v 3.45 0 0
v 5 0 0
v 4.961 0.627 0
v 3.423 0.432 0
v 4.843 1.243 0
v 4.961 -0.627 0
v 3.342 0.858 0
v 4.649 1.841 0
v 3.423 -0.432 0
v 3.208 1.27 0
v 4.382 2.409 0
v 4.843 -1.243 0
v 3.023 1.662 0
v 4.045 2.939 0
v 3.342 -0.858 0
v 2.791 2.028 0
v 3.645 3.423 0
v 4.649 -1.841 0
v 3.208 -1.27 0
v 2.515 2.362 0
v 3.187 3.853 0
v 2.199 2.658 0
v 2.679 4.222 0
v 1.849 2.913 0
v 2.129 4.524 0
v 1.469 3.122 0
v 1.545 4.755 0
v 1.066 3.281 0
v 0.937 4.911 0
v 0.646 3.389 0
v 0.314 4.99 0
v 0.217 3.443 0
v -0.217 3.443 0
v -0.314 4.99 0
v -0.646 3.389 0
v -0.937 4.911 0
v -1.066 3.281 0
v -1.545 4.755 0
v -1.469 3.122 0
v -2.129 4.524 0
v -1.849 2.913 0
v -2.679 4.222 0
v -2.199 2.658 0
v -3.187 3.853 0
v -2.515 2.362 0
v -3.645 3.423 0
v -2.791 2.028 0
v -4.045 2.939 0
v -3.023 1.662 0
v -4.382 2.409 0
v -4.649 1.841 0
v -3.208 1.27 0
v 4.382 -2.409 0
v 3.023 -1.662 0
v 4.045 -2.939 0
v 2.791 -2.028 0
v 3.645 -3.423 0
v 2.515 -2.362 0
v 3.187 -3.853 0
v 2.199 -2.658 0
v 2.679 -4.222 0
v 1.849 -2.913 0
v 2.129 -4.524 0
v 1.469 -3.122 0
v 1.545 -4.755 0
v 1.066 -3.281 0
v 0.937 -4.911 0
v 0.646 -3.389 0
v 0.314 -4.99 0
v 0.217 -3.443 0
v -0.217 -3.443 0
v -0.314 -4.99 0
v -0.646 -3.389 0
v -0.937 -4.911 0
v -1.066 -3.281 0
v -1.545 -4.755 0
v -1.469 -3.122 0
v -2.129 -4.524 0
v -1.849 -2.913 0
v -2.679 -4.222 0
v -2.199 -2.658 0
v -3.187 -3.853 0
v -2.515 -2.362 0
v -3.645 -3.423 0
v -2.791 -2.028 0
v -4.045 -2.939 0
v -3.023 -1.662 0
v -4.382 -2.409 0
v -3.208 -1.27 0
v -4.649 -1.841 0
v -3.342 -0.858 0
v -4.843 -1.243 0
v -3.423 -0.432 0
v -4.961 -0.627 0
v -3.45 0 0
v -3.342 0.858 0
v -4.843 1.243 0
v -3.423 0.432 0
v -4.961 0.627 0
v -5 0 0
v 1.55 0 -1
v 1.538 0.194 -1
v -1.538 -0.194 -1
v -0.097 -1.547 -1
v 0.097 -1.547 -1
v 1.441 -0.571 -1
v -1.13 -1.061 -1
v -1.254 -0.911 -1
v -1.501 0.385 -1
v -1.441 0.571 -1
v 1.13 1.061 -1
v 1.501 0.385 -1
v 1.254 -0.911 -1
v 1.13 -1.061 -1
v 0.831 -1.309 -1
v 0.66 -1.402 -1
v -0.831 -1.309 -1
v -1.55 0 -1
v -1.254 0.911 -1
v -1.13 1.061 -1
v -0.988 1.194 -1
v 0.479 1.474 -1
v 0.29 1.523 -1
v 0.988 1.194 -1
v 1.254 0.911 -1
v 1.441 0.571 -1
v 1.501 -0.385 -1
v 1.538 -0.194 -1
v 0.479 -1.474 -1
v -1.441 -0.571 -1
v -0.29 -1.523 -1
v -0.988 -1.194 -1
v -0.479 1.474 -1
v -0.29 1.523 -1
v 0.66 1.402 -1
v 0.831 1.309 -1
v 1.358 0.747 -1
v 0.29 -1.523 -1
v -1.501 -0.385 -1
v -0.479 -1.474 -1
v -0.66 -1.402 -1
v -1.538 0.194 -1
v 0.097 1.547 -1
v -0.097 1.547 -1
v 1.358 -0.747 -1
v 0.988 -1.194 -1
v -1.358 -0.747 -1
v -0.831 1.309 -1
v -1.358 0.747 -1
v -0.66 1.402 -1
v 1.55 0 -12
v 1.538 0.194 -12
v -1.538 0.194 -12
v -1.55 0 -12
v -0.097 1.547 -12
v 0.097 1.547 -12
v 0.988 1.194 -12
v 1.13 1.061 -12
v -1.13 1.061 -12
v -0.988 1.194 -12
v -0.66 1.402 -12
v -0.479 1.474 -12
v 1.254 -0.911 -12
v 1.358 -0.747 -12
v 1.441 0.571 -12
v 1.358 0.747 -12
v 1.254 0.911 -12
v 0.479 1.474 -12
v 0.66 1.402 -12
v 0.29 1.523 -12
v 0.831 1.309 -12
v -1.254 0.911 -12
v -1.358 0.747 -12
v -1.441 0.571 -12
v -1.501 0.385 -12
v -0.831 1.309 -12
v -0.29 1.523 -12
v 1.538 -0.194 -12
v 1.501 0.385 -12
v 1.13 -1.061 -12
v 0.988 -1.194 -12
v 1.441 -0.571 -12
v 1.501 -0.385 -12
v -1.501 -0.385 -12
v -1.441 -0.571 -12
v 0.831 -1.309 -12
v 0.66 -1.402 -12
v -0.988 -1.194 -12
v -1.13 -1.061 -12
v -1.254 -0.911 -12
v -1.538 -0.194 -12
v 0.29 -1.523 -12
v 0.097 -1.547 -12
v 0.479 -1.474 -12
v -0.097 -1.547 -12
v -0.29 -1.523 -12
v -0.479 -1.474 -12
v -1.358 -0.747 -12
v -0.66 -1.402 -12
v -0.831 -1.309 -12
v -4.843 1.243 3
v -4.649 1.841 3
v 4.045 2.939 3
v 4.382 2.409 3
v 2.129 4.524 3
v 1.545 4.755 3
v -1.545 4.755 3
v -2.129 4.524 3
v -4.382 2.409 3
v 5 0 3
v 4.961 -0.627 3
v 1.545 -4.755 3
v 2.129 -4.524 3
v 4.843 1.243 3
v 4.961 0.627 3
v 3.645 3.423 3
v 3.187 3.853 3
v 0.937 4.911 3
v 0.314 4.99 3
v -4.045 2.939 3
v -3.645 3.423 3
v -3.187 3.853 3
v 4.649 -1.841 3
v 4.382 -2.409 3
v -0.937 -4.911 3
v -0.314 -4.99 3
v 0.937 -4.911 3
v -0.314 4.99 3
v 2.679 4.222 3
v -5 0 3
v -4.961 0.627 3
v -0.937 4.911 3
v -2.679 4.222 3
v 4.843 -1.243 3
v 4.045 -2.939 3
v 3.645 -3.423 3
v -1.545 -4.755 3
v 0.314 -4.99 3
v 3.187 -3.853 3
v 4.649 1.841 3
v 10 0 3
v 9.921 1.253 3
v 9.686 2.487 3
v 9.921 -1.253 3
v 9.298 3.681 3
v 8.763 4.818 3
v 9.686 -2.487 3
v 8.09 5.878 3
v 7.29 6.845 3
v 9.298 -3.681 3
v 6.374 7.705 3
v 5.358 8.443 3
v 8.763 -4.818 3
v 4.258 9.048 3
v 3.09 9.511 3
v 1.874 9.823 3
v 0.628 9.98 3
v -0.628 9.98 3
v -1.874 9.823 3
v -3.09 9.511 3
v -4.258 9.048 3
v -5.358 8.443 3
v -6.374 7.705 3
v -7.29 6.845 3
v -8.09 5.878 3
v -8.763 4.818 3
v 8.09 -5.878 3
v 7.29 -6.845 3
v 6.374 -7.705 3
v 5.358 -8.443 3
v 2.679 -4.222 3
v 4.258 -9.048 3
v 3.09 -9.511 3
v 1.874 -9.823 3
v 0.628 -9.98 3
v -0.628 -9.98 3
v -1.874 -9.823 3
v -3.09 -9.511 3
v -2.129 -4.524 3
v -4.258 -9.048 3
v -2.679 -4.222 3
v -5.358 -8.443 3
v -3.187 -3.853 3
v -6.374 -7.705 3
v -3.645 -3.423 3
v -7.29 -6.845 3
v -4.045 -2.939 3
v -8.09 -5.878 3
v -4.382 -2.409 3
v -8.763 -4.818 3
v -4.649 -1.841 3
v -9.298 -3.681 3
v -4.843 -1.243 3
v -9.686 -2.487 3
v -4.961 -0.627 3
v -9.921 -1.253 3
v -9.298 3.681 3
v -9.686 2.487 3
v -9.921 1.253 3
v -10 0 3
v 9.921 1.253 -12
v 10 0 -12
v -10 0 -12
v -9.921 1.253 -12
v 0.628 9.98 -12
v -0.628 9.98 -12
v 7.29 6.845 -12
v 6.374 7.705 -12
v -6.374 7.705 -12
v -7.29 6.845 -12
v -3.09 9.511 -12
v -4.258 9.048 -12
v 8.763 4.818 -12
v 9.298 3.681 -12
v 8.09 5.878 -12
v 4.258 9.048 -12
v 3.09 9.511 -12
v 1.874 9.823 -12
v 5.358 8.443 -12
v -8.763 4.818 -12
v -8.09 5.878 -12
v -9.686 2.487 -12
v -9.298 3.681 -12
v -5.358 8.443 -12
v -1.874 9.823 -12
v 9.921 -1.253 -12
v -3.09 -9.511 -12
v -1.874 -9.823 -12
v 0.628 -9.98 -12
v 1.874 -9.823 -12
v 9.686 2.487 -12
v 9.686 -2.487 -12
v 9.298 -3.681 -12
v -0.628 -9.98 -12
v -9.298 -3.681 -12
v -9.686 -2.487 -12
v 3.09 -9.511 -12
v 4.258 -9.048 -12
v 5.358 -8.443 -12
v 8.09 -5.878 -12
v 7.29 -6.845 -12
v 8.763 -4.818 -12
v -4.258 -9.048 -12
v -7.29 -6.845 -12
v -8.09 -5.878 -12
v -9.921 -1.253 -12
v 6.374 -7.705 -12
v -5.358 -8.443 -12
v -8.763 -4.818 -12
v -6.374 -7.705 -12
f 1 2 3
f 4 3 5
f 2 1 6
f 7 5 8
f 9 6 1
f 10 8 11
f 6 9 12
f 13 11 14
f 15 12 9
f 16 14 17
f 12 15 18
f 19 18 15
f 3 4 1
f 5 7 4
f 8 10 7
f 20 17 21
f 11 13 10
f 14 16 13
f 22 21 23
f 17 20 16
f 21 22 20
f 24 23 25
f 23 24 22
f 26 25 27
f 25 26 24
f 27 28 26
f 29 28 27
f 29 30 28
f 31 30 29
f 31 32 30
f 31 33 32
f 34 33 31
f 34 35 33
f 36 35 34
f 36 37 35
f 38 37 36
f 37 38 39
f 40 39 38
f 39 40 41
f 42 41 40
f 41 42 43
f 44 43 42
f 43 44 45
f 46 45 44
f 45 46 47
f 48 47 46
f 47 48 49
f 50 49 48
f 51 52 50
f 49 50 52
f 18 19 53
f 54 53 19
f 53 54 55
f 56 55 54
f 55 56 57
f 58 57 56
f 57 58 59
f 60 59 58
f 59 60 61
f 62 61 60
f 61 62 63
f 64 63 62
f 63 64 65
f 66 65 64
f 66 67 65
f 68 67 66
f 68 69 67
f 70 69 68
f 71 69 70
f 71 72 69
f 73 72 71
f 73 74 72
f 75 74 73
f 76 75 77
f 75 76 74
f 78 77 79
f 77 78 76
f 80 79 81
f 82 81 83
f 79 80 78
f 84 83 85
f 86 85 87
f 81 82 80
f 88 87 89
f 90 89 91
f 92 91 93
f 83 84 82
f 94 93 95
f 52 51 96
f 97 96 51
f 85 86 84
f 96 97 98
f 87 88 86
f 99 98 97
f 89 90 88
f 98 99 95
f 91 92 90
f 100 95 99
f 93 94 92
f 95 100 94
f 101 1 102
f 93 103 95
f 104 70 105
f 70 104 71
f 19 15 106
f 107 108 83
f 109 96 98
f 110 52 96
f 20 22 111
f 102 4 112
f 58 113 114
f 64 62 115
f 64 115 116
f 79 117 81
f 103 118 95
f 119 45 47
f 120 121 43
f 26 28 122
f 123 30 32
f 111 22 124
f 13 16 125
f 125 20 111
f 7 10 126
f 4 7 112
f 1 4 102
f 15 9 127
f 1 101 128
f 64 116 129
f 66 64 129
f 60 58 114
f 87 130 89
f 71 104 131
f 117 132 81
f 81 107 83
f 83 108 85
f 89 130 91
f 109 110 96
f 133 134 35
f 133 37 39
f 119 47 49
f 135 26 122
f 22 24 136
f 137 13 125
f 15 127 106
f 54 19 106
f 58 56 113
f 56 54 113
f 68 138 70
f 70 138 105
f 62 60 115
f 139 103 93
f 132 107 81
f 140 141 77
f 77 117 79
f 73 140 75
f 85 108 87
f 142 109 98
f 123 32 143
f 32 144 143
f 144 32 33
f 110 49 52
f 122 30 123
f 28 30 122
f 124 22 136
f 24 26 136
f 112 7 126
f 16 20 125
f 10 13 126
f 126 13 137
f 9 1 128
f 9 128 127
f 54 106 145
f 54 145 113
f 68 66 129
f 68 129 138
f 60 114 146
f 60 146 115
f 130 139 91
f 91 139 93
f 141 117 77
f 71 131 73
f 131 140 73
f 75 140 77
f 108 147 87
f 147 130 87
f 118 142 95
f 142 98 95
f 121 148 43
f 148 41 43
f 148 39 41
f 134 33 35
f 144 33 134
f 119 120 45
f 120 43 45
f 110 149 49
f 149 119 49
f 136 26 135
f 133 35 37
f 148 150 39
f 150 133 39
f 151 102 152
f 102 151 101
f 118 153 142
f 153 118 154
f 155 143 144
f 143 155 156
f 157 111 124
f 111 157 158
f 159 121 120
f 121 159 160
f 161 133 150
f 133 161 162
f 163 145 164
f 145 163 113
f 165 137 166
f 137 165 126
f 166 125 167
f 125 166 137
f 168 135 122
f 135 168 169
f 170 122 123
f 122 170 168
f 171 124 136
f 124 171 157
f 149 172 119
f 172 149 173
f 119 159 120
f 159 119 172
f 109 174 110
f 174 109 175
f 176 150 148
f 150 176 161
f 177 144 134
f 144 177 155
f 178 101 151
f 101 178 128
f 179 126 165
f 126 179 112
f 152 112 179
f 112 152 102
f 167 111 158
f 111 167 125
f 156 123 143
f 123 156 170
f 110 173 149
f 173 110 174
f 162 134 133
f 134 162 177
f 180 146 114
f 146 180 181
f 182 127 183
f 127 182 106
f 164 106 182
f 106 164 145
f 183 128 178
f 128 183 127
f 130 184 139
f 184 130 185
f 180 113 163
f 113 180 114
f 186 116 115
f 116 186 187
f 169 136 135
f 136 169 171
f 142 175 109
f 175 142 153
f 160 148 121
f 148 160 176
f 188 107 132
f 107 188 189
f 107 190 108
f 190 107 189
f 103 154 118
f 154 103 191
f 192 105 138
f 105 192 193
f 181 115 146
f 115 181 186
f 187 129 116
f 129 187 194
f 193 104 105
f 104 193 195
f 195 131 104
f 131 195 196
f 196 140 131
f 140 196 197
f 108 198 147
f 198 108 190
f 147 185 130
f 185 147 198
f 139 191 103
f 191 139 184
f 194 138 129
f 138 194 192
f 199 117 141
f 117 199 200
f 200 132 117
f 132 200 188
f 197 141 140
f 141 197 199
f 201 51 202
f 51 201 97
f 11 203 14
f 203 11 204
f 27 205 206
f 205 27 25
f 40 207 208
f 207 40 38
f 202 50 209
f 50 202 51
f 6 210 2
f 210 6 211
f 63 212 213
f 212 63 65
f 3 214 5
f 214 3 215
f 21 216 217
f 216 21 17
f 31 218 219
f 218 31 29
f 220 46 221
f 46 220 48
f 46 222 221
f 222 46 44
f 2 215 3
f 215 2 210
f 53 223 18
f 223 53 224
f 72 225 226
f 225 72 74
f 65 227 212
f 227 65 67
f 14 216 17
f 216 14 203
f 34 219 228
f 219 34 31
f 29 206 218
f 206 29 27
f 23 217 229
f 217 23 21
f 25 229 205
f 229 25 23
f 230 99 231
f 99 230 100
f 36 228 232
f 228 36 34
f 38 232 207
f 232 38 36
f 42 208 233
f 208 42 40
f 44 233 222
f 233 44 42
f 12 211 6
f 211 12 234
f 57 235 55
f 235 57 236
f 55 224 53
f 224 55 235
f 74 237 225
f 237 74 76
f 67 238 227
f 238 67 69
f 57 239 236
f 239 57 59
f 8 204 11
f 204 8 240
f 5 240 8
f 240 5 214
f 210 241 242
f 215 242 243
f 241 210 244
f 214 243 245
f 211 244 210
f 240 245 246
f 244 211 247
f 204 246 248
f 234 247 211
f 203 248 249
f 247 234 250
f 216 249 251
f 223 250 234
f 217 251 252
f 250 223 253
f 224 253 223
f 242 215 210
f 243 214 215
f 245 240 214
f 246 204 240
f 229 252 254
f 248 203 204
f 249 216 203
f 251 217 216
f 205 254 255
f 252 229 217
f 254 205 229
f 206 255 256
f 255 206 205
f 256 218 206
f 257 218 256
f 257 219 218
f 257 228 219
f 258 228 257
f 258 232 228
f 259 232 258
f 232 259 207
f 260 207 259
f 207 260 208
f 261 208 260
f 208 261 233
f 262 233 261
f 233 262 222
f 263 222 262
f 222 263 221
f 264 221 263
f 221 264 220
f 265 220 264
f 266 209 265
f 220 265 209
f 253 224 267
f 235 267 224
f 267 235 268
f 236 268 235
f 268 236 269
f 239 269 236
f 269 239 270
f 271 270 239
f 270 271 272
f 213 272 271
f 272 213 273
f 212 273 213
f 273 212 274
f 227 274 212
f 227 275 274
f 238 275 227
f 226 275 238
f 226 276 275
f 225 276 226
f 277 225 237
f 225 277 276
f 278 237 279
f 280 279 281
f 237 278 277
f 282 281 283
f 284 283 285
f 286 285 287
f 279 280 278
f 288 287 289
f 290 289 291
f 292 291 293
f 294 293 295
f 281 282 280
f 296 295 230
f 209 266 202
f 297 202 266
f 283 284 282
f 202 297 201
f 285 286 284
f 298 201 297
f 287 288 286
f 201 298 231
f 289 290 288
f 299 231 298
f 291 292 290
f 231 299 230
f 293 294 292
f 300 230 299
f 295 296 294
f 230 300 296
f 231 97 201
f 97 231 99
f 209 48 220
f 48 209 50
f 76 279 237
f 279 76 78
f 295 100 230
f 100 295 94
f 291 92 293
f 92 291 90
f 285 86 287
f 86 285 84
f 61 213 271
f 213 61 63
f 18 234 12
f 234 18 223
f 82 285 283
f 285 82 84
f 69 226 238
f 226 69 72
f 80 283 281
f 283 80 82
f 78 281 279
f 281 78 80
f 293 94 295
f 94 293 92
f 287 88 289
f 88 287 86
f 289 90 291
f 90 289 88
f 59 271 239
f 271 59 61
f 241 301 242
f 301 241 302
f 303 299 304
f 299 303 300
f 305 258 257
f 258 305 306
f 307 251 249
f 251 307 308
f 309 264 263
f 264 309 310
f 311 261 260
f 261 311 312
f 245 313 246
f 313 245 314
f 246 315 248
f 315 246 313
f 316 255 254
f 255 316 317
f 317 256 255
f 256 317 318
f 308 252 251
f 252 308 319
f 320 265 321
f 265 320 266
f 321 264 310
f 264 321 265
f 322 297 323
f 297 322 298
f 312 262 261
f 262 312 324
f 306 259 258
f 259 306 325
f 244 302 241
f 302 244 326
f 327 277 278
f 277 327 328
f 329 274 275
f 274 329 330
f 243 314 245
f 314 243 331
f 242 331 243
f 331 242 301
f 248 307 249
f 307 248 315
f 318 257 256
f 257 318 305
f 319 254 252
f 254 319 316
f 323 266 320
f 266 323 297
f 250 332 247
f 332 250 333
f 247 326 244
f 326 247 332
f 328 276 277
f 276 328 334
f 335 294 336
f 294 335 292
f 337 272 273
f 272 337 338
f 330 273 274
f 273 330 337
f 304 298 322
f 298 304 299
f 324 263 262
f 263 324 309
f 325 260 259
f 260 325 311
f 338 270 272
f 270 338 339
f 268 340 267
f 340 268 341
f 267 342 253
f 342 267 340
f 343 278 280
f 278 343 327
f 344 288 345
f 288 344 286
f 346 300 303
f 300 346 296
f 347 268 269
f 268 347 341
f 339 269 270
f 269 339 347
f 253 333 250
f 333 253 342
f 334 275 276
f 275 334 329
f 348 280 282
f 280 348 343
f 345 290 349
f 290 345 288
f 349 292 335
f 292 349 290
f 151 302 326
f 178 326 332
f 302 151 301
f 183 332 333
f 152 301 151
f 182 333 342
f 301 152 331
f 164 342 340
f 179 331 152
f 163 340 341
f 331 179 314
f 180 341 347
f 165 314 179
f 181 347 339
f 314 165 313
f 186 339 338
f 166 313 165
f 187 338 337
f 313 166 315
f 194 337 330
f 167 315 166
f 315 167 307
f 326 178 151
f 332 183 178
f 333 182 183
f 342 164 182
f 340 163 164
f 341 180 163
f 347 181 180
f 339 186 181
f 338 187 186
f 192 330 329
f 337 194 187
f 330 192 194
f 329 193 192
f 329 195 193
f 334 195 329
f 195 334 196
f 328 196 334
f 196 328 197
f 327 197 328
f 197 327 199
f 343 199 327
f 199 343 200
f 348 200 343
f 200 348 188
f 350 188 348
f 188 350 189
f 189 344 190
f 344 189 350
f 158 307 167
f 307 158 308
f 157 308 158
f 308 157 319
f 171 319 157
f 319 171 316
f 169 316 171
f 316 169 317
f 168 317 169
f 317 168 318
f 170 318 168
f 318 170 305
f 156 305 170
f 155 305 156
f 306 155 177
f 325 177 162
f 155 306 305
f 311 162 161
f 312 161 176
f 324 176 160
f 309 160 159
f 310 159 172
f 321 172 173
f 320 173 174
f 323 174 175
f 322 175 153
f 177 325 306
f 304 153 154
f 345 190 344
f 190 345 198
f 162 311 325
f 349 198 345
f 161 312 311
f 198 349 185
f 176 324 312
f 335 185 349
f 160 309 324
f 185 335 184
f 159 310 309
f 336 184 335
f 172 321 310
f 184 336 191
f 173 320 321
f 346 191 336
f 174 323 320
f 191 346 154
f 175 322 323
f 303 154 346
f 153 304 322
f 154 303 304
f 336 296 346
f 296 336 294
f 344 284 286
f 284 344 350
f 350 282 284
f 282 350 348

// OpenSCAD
$fn = 50;

difference() {
	union() {
		translate(v = [0, 0, -12.0]) {
			cylinder(h = 15, r = 10.0);
		}
	}
	union() {
		translate(v = [0, 0, 0]) {
			rotate(a = [0, 0, 0]) {
				difference() {
					union() {
						translate(v = [0, 0, -15.0]) {
							cylinder(h = 15, r = 1.25);
						}
						translate(v = [0, 0, -1.0]) {
							cylinder(h = 1.0, r1 = 1.55, r2 = 3.45);
						}
						translate(v = [0, 0, -15.0]) {
							cylinder(h = 15, r = 1.55);
						}
						translate(v = [0, 0, -15.0]) {
							cylinder(h = 15, r = 1.25);
						}
					}
					union();
				}
			}
		}
		#cylinder(h = 3, r = 5.0);
	}
}
